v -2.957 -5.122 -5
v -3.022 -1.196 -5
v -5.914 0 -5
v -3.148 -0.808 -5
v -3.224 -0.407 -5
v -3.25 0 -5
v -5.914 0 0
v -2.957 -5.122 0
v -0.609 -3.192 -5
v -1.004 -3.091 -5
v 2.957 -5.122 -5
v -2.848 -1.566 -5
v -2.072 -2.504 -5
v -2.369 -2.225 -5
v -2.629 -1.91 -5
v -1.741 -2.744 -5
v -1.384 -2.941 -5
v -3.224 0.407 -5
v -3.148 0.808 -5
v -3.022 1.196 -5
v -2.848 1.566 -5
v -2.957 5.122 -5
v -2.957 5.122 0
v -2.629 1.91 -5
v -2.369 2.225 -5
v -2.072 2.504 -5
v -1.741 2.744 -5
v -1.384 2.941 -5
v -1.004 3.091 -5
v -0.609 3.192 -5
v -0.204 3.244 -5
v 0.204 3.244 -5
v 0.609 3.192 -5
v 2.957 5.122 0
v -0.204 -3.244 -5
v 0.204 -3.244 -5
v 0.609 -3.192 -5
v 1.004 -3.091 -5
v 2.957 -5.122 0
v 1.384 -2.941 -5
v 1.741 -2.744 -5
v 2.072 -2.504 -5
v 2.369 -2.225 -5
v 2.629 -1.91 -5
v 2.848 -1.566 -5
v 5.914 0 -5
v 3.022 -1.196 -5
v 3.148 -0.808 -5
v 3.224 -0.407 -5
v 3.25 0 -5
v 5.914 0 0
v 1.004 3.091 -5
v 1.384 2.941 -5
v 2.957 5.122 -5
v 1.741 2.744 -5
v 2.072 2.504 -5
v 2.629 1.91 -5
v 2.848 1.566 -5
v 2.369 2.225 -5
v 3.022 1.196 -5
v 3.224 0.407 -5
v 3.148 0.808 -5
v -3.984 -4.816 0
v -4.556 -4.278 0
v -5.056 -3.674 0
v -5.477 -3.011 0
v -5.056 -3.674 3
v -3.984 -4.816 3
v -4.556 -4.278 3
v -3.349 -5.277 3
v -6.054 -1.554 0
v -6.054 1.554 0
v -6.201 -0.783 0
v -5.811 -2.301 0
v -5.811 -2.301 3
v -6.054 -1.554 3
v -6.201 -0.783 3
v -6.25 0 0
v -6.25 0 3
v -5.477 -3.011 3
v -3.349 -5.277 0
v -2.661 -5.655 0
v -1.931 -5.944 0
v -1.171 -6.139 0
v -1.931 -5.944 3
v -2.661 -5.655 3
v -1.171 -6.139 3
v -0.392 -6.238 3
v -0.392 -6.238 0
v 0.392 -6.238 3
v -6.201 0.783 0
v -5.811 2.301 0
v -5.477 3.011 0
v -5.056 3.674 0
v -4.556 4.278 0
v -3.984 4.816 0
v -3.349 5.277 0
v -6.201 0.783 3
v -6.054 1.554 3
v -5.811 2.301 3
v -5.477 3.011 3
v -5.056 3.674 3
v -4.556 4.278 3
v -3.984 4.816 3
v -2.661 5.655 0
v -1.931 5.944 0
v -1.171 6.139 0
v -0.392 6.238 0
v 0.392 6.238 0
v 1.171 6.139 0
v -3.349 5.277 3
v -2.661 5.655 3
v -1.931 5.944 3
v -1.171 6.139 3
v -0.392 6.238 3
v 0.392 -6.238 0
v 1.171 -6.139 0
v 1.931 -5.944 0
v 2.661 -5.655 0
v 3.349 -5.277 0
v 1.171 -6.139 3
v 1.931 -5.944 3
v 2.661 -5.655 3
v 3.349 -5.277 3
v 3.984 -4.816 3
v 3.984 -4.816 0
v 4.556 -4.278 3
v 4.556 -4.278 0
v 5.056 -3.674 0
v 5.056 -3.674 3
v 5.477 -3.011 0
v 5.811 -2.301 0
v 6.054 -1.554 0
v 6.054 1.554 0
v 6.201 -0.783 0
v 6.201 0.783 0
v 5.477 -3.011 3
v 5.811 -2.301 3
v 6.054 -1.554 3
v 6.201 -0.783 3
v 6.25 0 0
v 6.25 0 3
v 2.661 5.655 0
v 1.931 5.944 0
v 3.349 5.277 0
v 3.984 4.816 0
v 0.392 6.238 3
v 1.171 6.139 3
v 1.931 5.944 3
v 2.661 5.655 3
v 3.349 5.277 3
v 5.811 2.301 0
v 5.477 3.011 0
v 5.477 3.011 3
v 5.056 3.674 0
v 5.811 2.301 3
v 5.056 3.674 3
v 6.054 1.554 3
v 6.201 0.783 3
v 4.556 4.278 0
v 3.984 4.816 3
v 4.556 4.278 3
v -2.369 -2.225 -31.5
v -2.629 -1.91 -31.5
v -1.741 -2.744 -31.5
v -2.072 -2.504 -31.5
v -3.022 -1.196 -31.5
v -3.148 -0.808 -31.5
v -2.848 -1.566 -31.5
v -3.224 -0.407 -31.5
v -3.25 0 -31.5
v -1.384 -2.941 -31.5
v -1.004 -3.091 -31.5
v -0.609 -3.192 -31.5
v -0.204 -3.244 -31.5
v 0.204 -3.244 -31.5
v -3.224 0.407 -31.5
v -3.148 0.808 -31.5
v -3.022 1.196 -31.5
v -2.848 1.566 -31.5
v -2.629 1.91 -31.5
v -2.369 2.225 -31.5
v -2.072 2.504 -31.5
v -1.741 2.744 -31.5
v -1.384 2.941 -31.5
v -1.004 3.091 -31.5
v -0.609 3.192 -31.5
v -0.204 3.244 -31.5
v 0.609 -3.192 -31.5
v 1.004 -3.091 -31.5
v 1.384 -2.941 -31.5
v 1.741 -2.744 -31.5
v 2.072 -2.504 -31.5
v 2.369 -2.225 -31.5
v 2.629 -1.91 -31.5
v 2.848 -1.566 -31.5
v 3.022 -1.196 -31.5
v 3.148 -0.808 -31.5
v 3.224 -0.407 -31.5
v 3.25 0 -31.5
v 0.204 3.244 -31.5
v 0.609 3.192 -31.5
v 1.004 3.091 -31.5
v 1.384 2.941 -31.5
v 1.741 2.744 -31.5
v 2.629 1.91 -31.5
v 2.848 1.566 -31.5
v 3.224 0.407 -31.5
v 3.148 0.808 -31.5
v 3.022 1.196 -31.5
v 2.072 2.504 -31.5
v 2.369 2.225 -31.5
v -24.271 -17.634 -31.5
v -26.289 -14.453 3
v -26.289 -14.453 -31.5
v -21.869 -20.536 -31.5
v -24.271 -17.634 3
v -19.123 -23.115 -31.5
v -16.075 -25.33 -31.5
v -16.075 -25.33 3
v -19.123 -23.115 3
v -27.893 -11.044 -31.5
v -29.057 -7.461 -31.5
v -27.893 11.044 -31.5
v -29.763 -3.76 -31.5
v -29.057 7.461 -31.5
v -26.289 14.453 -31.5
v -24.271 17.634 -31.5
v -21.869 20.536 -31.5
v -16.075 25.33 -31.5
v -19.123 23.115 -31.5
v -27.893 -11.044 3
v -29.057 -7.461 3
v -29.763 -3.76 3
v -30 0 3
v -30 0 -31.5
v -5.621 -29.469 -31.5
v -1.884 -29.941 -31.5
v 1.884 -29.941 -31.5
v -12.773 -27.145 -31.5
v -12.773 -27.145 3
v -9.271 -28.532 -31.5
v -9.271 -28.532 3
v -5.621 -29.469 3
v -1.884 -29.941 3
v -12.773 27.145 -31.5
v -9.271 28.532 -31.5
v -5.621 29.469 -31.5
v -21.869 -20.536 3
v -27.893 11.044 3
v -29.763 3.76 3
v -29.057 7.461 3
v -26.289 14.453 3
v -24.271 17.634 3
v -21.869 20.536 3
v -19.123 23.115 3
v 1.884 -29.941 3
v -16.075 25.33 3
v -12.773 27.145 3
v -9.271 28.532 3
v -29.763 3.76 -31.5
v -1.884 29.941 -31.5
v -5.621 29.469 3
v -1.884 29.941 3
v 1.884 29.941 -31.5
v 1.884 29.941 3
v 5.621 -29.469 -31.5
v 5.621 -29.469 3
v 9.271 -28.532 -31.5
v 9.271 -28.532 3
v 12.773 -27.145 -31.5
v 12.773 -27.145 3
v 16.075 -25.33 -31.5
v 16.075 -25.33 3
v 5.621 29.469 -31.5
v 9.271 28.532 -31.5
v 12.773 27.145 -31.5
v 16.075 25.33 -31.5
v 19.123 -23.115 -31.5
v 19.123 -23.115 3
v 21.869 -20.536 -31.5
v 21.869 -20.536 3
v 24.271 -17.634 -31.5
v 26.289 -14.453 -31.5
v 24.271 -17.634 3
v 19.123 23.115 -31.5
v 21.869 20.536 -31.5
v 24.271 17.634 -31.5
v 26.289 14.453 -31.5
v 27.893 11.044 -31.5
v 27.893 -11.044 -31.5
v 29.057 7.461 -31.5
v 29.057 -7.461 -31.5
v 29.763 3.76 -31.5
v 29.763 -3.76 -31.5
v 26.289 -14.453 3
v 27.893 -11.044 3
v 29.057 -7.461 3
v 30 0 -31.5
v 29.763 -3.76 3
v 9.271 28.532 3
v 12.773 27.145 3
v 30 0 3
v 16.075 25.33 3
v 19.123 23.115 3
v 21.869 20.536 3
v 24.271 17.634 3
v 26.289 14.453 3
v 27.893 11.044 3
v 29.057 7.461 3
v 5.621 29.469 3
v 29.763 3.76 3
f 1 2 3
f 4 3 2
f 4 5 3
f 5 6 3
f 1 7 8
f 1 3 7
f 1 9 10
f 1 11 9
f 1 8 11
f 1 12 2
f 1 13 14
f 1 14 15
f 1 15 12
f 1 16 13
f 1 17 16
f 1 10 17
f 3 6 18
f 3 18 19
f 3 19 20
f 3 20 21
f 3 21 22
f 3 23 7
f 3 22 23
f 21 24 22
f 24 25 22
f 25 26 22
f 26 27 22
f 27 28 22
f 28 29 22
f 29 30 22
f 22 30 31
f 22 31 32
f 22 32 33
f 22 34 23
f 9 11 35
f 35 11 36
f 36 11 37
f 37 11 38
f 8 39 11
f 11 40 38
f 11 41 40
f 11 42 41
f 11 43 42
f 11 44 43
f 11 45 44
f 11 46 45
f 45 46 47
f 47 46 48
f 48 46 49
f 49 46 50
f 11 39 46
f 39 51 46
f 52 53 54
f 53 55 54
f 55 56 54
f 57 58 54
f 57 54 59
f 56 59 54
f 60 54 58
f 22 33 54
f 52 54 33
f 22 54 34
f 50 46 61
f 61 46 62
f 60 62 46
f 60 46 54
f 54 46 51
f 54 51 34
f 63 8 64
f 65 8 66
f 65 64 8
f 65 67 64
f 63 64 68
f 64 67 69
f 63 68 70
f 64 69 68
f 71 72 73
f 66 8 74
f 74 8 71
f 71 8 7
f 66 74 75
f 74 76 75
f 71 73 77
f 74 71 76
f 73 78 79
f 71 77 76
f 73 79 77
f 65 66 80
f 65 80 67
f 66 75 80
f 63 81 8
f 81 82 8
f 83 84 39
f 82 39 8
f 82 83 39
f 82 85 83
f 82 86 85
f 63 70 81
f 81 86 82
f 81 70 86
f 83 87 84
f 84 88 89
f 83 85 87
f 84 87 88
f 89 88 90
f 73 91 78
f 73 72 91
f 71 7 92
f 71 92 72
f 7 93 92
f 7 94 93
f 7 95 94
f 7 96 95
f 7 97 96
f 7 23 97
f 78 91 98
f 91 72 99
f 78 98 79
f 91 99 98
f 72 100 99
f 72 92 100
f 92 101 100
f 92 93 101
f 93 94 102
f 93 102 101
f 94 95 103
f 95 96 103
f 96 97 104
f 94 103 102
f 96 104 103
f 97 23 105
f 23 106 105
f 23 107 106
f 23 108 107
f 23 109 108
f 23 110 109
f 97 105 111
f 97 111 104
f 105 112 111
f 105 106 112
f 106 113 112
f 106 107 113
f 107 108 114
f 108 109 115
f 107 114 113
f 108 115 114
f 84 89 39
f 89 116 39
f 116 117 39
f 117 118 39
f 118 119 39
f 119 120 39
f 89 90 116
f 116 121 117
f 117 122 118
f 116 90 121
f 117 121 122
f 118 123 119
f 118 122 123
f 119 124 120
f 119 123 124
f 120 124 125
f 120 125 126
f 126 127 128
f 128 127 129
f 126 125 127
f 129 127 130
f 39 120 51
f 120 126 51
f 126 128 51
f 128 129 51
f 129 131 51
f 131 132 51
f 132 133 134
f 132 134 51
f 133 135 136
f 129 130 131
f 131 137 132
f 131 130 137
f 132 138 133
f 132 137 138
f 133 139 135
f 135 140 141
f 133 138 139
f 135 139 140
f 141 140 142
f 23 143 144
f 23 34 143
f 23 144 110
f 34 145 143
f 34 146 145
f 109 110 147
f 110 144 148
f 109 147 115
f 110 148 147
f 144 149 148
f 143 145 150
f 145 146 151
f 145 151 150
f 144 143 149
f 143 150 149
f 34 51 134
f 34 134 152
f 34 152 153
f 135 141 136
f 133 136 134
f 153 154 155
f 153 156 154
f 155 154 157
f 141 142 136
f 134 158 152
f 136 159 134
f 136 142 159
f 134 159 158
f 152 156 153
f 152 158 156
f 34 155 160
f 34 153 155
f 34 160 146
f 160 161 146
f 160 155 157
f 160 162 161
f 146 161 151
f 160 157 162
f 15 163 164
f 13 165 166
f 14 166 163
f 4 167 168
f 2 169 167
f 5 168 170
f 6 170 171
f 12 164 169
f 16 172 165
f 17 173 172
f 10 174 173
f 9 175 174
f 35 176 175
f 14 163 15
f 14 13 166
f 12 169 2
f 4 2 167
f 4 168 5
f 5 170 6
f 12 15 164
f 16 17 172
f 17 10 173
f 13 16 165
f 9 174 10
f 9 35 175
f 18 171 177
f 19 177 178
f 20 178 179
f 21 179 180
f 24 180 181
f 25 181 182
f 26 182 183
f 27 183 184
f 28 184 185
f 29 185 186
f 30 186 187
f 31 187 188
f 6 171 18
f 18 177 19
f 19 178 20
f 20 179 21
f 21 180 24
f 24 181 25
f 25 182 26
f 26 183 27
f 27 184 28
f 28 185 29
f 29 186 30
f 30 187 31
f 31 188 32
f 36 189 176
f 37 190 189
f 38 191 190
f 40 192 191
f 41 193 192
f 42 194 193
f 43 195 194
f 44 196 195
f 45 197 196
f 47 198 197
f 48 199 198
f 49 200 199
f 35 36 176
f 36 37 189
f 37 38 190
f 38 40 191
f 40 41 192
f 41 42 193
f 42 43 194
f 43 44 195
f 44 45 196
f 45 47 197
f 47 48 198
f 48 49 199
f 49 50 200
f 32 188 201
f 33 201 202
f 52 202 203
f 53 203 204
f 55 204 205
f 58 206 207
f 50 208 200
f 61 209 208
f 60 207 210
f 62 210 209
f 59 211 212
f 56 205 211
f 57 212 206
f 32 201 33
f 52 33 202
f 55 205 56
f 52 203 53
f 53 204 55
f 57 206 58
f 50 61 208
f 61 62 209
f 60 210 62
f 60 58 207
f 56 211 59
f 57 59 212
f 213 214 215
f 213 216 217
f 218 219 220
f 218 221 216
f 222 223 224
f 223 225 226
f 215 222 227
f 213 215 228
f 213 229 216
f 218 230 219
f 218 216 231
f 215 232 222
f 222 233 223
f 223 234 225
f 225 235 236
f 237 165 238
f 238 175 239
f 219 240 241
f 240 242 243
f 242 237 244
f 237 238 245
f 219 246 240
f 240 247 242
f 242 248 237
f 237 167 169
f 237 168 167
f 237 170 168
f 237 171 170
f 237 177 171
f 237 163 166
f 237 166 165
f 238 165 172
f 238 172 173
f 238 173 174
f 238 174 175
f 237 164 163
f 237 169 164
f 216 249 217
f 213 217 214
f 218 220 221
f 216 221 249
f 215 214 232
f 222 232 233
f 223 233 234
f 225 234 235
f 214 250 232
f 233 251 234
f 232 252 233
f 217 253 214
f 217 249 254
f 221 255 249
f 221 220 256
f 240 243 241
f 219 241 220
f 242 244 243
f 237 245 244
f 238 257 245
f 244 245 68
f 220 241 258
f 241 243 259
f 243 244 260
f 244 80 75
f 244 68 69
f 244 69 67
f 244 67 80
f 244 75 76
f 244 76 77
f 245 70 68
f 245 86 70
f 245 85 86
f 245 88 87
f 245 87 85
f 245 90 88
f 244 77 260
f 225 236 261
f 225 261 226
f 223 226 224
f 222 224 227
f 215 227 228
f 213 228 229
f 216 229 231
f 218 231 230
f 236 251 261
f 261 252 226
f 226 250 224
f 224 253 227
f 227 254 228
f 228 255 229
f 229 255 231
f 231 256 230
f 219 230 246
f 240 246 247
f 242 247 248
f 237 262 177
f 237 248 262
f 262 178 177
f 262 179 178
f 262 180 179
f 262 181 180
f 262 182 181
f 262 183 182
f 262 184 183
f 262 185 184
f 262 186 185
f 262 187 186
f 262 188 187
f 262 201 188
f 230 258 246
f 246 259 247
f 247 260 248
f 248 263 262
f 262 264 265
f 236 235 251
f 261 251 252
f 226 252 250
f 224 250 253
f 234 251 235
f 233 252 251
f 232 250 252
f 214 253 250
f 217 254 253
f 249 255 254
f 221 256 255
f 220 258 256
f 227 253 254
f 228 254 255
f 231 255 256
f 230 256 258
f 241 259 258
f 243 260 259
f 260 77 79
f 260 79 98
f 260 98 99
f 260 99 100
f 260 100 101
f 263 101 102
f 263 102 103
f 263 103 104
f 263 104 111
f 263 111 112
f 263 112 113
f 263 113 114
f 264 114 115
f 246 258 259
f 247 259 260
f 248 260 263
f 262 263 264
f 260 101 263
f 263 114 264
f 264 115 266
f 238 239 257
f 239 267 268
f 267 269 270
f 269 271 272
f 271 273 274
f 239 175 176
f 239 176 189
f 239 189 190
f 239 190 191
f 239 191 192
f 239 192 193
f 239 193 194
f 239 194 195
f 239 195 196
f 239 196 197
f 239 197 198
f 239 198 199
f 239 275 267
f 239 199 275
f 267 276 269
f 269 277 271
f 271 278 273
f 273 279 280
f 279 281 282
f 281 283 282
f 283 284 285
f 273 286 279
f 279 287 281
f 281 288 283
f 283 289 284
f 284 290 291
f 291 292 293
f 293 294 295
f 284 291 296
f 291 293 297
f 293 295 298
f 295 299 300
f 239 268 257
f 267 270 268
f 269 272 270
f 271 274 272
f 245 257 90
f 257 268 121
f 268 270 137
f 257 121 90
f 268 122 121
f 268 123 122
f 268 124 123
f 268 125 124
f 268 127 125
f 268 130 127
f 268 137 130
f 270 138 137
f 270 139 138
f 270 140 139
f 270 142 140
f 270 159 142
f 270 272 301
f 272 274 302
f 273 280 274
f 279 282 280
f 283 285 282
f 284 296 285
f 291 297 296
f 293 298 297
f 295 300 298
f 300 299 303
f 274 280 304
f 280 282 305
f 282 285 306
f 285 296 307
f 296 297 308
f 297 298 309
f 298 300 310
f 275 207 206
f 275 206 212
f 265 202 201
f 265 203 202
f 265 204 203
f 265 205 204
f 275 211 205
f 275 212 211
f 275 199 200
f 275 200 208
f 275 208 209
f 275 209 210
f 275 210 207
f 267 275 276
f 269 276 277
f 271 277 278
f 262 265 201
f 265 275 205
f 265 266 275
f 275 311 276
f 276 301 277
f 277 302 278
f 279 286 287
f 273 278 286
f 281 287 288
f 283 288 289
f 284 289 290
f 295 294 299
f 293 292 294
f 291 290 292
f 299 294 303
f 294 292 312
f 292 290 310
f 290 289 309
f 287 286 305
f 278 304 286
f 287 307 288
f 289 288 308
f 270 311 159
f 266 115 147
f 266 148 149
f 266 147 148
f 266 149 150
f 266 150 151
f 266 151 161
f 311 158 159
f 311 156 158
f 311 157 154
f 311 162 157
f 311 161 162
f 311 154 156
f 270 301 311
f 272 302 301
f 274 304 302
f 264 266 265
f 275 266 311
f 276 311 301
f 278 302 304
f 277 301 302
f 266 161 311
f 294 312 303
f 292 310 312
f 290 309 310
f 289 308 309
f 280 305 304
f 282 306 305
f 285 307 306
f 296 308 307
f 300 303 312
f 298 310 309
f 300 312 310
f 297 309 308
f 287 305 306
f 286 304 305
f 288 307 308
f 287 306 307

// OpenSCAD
$fn = 50;

difference() {
	union() {
		translate(v = [0, 0, -31.5]) {
			cylinder(h = 34.5, r = 30.0);
		}
	}
	union() {
		translate(v = [0, 0, 0]) {
			rotate(a = [0, 0, 0]) {
				difference() {
					union() {
						translate(v = [0, 0, -5]) {
							linear_extrude(height = 5) {
								polygon(points = [[5.914249999999999, 0.0], [2.957125, 5.1218907443321156], [-2.9571249999999982, 5.1218907443321156], [-5.914249999999999, 7.242867331857232e-16], [-2.9571250000000022, -5.121890744332115], [2.9571249999999956, -5.121890744332118]]);
							}
						}
					}
					union();
				}
			}
		}
		#cylinder(h = 3, r = 6.25);
		#translate(v = [0, 0, -100.0]) {
			cylinder(h = 200, r = 3.25);
		}
	}
}
